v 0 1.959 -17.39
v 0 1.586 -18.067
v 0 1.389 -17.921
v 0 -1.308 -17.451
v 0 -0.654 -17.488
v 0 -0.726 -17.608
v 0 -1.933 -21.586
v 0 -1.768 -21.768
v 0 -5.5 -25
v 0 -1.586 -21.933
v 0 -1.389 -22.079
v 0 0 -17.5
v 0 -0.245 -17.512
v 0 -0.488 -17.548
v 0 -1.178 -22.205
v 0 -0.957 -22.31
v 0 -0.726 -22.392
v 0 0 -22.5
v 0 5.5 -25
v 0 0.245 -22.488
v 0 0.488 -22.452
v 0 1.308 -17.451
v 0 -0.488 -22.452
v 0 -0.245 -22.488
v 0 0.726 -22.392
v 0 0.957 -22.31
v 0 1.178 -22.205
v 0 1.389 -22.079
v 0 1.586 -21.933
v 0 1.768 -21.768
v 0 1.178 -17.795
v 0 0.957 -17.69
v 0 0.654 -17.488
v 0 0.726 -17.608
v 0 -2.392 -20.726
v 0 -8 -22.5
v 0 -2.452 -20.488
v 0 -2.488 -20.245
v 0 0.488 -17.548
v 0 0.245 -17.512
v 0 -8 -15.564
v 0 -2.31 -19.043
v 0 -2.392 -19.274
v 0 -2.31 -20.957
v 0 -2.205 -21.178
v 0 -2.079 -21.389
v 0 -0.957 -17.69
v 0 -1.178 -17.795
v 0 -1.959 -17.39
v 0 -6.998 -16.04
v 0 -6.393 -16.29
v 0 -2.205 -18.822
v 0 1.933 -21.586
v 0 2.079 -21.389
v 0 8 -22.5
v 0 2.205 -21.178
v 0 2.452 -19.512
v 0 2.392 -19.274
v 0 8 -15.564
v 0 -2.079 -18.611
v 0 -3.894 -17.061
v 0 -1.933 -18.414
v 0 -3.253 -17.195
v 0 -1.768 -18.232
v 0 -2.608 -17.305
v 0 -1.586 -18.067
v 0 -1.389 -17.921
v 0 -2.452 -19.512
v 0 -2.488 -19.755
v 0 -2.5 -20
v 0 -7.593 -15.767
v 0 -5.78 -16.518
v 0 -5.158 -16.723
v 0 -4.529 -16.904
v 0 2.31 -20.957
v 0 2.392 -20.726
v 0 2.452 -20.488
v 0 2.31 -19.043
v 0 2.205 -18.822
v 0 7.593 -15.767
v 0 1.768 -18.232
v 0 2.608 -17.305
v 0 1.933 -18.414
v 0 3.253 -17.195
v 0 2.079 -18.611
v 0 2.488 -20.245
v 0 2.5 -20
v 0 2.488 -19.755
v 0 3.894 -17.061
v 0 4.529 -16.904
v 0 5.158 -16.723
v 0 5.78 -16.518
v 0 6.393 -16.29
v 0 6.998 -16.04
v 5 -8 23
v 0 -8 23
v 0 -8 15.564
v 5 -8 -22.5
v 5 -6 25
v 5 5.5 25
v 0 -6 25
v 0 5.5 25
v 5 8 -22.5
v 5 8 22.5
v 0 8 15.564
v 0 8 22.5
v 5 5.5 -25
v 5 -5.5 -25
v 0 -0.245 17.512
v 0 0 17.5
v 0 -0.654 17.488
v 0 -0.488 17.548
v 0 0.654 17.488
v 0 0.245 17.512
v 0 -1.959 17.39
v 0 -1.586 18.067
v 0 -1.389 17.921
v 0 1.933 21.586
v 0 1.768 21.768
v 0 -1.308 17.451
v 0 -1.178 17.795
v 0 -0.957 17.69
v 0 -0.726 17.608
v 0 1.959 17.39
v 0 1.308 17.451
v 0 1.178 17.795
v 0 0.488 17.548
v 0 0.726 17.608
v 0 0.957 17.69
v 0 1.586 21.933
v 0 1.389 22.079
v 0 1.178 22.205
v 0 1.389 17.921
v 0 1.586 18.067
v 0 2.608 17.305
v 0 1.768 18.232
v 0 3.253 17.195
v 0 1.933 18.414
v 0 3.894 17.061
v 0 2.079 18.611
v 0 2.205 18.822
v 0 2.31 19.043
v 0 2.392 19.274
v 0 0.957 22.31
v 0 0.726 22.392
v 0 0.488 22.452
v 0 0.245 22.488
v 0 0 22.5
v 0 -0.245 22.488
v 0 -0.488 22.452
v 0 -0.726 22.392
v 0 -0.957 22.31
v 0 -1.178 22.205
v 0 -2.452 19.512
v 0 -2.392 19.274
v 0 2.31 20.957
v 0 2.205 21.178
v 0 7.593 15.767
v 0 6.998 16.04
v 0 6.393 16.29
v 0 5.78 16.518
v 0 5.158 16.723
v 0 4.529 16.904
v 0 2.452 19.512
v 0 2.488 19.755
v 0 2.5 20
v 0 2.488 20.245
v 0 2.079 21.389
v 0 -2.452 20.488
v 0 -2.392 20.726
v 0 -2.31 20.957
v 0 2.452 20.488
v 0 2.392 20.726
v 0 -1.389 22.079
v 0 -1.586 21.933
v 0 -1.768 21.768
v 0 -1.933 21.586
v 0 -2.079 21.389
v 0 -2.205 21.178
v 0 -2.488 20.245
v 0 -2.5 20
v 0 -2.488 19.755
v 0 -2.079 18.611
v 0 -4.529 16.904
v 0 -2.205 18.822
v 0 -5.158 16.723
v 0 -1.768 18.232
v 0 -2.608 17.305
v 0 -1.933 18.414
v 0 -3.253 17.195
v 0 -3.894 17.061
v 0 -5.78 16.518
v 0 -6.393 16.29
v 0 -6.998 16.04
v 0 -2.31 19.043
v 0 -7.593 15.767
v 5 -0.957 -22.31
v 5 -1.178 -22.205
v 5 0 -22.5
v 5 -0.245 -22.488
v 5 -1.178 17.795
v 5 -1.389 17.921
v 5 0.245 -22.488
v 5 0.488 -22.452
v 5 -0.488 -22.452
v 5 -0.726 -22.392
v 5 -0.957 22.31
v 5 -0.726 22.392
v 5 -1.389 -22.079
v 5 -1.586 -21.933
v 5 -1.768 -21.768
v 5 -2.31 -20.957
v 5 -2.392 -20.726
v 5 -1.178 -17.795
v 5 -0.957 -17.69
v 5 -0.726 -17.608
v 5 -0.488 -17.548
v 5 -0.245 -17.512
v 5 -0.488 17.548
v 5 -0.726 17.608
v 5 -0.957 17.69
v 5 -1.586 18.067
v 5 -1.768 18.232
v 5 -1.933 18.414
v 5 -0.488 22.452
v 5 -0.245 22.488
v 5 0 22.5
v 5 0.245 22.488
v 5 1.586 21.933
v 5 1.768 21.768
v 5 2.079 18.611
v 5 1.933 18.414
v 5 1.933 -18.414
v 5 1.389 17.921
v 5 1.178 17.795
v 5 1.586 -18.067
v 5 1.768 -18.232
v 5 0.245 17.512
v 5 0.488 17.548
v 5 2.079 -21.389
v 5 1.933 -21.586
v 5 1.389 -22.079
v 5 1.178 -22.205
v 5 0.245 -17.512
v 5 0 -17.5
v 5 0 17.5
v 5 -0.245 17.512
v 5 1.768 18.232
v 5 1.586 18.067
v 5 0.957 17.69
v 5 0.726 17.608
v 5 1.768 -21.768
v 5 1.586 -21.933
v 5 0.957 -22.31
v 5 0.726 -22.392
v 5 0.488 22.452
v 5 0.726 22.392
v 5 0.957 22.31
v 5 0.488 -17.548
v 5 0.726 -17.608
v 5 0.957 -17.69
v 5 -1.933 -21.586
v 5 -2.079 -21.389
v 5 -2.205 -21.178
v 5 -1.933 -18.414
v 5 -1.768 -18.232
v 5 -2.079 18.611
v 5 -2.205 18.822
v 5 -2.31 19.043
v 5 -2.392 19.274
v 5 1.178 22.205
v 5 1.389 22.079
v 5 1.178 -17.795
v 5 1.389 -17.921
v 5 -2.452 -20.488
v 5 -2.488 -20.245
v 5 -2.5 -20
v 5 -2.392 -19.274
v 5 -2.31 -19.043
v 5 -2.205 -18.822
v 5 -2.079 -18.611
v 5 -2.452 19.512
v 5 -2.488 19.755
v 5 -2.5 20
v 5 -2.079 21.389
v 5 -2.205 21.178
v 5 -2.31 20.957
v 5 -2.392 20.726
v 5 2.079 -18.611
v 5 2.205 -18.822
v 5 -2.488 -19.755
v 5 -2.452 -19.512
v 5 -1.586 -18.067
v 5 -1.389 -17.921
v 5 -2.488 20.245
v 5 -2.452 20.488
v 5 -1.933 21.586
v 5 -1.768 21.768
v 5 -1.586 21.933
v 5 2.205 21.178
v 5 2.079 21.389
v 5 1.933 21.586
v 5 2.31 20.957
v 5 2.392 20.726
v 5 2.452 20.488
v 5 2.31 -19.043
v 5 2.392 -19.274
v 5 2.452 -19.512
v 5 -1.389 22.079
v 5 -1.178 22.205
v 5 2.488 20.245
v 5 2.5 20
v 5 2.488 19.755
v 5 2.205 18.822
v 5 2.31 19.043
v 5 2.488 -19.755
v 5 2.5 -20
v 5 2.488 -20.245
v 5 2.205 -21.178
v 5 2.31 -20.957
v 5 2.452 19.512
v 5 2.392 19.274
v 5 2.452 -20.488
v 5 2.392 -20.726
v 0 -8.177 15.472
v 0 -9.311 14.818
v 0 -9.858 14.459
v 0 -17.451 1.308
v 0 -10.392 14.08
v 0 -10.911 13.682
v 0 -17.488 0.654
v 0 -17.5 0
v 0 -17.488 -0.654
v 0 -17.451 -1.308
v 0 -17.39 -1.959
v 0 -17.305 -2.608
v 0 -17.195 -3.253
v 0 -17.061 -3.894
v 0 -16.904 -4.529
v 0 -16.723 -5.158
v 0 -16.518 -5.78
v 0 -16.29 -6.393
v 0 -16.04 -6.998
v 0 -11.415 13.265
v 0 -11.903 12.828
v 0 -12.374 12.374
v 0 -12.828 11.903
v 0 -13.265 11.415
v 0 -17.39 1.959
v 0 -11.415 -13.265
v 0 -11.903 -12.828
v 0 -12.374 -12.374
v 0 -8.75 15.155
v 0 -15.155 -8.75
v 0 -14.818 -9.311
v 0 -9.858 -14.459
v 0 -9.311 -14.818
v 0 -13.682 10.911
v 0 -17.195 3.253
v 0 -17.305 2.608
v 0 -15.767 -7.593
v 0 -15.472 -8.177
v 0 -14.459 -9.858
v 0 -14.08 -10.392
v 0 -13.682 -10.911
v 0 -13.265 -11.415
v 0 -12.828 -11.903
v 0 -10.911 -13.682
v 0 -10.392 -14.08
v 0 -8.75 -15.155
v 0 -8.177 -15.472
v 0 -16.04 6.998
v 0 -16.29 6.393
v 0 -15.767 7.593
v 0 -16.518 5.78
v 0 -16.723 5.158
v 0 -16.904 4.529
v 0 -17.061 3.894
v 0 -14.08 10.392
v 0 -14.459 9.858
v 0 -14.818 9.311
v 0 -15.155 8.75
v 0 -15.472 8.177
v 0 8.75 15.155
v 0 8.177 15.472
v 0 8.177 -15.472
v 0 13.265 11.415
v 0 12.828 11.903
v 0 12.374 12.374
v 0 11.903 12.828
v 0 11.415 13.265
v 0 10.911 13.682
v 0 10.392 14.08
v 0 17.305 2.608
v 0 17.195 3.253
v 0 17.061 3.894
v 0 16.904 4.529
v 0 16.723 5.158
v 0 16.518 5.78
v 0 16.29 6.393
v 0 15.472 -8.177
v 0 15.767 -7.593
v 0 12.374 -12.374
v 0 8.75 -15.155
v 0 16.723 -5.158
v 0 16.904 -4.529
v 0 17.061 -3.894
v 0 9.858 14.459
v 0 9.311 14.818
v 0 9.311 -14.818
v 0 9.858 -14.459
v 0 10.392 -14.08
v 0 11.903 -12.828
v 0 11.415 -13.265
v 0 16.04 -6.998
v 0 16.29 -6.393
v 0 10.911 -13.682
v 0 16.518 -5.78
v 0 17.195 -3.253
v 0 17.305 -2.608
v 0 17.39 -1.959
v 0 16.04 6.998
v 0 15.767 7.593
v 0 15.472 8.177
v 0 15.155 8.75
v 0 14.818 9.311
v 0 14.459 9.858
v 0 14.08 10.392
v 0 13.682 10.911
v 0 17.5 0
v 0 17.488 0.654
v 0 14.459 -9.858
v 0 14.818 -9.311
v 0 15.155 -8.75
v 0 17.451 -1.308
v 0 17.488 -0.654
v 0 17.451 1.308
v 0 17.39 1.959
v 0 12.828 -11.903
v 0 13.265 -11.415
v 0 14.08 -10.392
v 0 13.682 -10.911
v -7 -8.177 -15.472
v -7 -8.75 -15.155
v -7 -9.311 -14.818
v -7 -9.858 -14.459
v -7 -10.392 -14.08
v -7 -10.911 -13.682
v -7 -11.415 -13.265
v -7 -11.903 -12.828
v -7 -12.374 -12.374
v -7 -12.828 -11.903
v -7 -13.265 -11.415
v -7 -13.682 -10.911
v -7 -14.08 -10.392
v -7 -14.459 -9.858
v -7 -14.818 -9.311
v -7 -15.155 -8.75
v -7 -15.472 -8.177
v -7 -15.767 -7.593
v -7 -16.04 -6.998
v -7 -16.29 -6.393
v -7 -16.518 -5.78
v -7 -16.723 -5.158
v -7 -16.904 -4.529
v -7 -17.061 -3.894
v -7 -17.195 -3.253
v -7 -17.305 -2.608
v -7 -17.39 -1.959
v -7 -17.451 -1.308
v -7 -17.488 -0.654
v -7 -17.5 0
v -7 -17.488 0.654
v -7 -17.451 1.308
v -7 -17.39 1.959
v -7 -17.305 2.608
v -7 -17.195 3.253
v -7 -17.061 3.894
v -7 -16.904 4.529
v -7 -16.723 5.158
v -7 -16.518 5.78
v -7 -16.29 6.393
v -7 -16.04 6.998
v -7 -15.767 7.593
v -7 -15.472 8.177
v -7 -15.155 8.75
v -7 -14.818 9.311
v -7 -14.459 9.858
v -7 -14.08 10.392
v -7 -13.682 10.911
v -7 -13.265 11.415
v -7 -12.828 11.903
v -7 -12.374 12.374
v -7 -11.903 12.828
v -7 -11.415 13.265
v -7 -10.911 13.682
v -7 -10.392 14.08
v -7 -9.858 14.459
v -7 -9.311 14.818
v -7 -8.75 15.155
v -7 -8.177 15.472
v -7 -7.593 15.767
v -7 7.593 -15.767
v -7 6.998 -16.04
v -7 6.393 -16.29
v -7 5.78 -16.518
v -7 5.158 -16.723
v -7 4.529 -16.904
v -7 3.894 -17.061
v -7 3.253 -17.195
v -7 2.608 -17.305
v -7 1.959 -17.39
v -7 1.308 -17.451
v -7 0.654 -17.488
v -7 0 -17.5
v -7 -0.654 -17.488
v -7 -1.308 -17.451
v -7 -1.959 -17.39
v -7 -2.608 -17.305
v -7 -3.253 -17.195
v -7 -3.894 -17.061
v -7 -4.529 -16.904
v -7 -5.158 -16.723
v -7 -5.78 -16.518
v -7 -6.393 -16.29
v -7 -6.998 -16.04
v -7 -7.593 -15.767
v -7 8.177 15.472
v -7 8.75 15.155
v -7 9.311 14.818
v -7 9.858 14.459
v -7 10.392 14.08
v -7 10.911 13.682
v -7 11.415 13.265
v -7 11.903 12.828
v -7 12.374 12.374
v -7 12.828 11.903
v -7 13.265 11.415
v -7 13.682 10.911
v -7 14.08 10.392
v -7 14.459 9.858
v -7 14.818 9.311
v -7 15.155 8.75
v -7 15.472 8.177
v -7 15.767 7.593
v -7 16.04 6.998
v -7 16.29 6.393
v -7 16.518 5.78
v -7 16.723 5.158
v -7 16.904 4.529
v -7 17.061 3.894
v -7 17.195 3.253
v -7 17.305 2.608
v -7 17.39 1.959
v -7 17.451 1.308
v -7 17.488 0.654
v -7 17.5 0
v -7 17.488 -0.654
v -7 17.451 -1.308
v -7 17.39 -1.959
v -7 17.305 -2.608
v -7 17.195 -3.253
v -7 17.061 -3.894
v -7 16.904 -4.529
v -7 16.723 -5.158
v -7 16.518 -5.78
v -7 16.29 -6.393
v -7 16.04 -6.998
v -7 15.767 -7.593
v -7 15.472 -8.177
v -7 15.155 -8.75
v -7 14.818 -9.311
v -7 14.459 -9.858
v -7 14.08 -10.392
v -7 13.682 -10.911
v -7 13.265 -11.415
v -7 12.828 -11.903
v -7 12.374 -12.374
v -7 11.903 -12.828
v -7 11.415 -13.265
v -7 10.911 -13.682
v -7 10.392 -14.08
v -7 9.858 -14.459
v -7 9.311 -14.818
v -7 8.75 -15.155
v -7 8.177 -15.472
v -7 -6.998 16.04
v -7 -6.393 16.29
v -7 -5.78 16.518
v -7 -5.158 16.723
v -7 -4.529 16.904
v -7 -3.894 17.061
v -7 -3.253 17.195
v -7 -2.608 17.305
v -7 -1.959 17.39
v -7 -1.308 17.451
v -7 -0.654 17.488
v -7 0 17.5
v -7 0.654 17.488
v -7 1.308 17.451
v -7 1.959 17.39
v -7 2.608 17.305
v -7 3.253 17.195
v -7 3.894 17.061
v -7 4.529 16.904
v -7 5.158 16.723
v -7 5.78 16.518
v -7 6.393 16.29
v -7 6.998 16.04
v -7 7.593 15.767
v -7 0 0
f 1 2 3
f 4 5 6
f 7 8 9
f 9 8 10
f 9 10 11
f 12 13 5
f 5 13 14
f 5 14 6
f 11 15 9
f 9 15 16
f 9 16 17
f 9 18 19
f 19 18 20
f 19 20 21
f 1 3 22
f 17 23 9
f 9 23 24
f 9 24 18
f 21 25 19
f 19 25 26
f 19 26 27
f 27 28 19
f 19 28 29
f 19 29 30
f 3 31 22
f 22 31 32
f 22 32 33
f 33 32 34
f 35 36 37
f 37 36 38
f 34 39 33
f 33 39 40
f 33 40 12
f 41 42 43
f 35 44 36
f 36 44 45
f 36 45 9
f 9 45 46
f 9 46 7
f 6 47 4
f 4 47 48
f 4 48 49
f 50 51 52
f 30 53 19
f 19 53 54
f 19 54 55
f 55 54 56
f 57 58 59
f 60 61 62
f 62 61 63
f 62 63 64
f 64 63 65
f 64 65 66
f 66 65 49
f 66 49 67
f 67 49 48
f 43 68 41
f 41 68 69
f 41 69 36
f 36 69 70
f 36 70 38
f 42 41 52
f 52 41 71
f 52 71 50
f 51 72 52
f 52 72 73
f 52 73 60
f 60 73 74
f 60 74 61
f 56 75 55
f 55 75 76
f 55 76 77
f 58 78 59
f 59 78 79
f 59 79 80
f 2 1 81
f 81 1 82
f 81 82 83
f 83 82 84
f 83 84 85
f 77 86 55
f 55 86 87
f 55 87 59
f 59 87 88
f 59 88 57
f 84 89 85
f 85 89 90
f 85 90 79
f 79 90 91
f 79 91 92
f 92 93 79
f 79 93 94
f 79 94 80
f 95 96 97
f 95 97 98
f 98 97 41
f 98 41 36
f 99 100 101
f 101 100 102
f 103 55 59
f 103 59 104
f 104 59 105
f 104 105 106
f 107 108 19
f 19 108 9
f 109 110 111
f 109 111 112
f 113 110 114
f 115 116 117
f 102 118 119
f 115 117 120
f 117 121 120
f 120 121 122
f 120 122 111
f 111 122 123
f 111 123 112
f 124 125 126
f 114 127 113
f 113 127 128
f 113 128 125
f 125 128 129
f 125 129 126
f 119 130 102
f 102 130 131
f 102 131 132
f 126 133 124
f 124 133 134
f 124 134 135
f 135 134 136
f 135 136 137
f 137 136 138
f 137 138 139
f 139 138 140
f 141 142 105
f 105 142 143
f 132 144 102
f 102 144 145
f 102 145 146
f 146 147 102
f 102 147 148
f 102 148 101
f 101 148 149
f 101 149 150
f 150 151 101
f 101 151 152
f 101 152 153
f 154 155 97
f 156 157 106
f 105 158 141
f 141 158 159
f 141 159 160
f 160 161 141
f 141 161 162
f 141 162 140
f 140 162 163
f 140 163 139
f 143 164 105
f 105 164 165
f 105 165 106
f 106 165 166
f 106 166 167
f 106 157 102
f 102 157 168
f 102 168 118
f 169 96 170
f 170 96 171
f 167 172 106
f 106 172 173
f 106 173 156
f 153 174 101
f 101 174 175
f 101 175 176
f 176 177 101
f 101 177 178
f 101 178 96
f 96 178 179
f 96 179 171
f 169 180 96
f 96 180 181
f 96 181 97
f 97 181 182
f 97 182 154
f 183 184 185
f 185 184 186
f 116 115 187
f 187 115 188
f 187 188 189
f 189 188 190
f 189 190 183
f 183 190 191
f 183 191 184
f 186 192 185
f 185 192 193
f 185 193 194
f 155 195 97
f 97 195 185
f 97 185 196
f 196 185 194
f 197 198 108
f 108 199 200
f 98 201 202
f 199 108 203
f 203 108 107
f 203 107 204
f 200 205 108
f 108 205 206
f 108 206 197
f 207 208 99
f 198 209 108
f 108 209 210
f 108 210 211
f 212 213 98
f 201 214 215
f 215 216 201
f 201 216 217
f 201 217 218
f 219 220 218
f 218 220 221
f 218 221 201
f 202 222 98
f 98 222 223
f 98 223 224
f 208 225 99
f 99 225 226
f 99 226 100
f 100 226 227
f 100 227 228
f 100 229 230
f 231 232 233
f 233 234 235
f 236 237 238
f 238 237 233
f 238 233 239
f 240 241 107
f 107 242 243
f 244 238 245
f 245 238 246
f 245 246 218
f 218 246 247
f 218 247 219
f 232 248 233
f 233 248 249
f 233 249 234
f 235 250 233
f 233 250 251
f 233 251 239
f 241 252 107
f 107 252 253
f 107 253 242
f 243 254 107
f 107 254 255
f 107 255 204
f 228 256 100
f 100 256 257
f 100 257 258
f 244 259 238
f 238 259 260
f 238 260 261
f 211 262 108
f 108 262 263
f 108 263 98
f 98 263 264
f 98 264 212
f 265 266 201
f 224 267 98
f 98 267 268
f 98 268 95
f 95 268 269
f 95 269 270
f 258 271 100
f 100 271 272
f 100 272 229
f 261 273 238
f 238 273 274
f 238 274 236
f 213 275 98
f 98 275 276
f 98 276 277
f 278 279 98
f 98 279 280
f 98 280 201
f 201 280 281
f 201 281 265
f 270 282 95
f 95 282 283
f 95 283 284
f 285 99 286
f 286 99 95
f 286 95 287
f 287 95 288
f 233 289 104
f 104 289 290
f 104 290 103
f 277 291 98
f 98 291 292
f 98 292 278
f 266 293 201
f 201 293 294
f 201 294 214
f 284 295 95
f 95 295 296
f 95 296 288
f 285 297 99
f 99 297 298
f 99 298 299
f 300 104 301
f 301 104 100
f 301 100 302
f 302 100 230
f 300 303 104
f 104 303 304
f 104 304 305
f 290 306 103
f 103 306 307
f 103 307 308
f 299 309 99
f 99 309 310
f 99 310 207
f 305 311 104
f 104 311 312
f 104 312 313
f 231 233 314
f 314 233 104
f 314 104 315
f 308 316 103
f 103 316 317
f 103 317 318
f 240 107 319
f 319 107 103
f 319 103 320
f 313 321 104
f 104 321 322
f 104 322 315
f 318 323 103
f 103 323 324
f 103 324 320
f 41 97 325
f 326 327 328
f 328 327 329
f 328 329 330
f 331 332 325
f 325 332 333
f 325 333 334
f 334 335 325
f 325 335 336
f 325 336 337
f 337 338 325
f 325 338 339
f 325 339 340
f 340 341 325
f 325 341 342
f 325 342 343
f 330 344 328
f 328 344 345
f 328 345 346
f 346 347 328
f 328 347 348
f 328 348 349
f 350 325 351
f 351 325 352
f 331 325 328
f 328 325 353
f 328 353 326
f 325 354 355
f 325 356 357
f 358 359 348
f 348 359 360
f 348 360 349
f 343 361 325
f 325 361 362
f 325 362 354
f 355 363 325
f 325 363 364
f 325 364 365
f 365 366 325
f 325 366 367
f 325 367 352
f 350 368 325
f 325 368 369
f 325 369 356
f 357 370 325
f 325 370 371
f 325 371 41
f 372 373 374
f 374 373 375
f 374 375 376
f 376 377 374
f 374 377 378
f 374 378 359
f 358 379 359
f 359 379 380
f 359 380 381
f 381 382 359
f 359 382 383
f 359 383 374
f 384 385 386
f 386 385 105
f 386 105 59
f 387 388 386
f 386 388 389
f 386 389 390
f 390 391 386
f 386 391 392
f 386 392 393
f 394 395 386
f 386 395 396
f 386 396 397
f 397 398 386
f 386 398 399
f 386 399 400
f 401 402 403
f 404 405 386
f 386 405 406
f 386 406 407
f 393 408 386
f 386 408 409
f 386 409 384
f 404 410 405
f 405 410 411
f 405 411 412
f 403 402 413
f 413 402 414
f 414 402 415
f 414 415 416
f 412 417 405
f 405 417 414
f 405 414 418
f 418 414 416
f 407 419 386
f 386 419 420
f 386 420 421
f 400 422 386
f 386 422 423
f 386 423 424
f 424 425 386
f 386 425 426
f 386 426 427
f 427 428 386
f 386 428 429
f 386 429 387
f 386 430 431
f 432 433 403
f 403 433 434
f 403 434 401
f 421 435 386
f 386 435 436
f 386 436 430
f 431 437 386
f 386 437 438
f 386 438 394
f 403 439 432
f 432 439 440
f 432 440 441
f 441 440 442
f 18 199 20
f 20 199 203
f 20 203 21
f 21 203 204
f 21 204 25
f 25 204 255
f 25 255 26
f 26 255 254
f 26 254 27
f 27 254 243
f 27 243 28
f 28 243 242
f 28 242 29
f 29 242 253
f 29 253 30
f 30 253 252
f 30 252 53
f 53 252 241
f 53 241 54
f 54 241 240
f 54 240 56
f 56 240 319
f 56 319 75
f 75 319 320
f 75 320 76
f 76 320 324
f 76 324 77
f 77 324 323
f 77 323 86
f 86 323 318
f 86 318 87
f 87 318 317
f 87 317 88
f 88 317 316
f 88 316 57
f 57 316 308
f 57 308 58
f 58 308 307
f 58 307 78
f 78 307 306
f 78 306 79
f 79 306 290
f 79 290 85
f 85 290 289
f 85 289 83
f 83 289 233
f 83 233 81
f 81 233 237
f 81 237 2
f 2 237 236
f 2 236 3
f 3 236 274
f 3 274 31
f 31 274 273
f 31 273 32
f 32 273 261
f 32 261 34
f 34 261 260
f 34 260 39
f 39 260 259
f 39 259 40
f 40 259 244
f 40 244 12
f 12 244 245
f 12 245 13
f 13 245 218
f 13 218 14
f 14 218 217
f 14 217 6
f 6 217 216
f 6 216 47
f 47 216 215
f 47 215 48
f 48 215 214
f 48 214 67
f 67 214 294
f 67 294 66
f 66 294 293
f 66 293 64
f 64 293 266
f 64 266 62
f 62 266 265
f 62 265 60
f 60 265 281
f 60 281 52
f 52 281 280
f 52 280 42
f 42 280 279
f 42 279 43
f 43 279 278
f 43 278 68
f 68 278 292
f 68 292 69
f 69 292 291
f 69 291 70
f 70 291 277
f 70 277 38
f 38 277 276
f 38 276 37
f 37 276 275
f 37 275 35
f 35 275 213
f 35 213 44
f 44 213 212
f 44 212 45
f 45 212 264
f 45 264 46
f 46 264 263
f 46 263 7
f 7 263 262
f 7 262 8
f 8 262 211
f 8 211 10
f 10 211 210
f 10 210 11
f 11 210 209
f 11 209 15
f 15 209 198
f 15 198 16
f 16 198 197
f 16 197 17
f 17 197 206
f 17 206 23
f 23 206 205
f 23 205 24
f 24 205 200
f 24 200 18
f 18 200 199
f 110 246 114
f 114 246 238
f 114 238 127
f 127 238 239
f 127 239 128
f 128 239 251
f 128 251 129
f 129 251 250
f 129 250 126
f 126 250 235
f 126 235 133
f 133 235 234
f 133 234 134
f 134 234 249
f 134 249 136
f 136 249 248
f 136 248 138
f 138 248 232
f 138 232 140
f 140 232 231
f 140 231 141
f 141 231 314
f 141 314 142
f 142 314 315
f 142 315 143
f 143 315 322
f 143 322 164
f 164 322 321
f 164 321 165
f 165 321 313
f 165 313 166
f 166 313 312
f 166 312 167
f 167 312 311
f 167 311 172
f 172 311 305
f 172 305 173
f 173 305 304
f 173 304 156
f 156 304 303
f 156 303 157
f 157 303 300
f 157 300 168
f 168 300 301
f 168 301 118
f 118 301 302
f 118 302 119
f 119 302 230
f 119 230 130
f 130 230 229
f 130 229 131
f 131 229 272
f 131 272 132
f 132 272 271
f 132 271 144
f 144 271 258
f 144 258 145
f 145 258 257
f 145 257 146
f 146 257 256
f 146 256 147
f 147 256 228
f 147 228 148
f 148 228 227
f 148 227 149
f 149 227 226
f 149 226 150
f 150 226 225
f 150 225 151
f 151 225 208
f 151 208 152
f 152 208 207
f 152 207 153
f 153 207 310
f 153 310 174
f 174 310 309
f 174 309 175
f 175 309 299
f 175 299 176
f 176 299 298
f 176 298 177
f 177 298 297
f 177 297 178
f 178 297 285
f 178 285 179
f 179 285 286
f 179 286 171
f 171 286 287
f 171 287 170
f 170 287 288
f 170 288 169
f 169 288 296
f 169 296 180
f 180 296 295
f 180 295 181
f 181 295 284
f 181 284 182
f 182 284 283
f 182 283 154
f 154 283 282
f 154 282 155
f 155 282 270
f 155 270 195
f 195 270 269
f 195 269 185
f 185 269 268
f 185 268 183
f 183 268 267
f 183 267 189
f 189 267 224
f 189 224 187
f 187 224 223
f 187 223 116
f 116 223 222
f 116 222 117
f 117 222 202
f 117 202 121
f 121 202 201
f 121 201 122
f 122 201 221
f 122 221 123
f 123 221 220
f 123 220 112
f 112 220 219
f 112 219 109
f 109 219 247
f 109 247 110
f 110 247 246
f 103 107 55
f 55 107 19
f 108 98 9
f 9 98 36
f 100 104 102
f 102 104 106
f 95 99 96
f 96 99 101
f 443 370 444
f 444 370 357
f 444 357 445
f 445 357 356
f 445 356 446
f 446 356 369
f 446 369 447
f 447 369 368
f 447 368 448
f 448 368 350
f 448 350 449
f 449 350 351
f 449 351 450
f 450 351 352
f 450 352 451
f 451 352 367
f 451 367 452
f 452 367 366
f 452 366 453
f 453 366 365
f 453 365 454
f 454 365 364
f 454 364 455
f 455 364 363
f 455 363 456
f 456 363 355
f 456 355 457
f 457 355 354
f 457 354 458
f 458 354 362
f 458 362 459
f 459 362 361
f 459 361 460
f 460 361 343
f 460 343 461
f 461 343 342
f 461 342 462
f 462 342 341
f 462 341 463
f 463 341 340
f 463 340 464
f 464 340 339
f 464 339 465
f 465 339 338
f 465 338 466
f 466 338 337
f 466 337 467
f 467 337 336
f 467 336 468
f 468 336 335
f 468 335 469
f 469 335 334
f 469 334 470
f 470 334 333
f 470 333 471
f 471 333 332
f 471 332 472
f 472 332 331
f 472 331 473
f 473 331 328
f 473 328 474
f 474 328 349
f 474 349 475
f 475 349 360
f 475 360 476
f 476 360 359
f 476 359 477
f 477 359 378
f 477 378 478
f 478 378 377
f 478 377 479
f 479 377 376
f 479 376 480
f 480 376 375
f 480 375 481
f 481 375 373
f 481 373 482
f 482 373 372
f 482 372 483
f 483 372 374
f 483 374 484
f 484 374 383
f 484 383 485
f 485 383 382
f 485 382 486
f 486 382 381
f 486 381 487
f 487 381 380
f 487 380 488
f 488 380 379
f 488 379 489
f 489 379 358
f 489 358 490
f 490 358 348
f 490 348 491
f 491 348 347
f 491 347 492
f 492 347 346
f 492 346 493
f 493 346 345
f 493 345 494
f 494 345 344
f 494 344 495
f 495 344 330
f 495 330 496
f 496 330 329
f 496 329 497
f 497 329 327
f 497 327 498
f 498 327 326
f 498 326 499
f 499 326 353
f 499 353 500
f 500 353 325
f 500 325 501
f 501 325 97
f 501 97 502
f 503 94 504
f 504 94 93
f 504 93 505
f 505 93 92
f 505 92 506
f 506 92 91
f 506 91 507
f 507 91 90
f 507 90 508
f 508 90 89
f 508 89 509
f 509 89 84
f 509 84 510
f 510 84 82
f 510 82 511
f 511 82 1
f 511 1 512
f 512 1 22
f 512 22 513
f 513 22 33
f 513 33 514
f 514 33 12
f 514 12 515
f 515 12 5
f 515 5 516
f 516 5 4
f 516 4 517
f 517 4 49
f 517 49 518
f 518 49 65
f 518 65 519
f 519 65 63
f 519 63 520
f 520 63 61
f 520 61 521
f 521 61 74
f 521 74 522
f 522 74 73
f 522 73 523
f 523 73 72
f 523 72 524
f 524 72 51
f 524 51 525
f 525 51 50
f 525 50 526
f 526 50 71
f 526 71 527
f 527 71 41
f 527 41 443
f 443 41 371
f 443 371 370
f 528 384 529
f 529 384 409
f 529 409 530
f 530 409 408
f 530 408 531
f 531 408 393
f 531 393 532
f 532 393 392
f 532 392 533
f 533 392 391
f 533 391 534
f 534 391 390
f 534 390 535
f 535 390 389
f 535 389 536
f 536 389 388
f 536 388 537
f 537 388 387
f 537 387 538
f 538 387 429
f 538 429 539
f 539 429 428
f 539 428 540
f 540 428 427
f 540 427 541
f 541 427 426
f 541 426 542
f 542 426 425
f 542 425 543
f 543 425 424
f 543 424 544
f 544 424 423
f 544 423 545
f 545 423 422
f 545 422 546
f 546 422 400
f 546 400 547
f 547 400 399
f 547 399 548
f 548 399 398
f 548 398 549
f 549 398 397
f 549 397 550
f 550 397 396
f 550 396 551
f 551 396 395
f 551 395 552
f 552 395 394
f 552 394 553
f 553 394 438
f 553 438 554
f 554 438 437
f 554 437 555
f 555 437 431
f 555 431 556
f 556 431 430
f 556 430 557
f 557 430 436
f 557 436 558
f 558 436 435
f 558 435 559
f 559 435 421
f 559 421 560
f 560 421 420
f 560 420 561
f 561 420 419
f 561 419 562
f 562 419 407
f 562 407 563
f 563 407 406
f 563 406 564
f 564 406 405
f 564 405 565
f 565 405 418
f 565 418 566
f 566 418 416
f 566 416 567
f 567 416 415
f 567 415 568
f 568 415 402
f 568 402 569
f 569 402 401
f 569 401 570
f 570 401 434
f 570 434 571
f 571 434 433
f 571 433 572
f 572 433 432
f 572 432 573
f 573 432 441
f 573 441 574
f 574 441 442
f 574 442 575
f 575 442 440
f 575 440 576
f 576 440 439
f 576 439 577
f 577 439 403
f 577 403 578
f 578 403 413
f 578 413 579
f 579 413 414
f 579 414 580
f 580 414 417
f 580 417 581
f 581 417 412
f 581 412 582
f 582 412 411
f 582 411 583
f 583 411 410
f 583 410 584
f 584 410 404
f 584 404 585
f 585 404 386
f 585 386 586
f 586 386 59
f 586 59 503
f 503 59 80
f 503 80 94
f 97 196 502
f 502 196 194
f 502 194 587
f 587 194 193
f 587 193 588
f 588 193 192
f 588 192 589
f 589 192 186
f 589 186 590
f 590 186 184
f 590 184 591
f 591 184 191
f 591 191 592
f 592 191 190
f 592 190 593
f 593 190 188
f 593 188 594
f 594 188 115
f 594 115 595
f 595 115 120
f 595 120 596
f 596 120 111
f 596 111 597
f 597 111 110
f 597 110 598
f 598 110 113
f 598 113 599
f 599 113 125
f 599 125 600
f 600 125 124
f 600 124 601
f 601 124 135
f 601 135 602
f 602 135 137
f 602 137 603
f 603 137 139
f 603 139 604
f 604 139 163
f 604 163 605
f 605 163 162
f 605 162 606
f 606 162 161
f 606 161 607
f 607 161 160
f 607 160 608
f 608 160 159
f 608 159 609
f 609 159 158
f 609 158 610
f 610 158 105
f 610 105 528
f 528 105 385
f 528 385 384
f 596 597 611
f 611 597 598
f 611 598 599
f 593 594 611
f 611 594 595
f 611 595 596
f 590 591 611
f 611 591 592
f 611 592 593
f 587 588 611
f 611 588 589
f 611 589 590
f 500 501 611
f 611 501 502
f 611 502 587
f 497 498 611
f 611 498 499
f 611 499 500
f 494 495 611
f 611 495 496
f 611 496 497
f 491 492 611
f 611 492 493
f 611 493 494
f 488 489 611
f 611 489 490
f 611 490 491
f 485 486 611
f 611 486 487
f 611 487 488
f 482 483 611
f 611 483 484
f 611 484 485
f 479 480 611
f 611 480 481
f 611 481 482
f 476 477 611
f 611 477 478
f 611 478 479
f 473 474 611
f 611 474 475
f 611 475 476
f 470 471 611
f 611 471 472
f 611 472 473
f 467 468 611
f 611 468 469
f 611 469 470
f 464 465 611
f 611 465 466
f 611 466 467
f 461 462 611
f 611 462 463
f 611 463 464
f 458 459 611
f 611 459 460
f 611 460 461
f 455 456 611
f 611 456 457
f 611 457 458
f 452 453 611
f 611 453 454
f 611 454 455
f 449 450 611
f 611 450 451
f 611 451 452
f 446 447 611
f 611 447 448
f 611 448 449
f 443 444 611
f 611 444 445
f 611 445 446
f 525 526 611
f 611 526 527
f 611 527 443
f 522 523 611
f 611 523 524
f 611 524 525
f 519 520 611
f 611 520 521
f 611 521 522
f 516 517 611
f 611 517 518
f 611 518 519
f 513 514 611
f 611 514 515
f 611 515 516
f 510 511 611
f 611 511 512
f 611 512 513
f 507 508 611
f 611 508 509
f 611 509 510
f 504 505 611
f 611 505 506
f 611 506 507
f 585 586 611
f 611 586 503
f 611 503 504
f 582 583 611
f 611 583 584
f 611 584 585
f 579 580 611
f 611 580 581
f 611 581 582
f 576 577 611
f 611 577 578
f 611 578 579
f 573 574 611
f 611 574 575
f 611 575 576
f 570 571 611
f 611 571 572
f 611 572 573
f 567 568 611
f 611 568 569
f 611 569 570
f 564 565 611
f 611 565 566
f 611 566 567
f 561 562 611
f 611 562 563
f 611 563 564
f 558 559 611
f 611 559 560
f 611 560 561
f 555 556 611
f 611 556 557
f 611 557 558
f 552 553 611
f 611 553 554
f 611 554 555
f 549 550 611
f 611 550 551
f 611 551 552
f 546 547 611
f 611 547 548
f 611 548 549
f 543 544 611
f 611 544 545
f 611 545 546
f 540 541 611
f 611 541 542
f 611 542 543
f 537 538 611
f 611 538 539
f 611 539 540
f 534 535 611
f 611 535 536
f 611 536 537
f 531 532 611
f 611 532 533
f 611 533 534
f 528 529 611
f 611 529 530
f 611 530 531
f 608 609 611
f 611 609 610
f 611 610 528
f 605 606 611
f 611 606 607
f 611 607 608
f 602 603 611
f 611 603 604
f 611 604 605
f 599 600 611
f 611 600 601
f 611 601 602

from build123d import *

# Parameters (mm, degrees)
SKETCH1_W                    = 50
SKETCH1_H                    = 16
BOSS_EXTRUDE1_DEPTH          = 5
SKETCH2_W                    = 7
SKETCH2_H                    = 14
F_5_0_5_DIAMETER_HOLE1_D     = 5
F_5_0_5_DIAMETER_HOLE1_DEPTH = 12
CHAMFER1_SIZE                = 2.5
CHAMFER2_SIZE                = 2
SKETCH5_R                    = 17.5
BOSS_EXTRUDE2_DEPTH          = 7


with BuildPart() as part:
    # Sketch1 → Boss-Extrude1 (new body)
    with BuildSketch(Plane(origin=(5, 0, 0), x_dir=(0, 0, -1), z_dir=(1, 0, 0))):
        Rectangle(SKETCH1_W, SKETCH1_H)
    extrude(amount=-BOSS_EXTRUDE1_DEPTH)

    # Sketch2 → Revolve1 (revolve)
    with BuildSketch(Plane(origin=(0, 0, 0), x_dir=(-1, 0, 0), z_dir=(0, 0, -1)), mode=Mode.PRIVATE) as revolve1_sk:
        with Locations((3.5, 7)):
            Rectangle(SKETCH2_W, SKETCH2_H)
    revolve(revolve1_sk.sketch.rotate(Axis((0, 0, 0), (-1, 0, 0)), 270), axis=Axis((0, 0, 0), (-1, 0, 0)))

    # Ø5.0 (5) Diameter Hole1
    with Locations(Plane(origin=(5, 0, 0), x_dir=(0, 0, -1), z_dir=(1, 0, 0))):
        with Locations((-20, 0), (20, 0)):
            Hole(F_5_0_5_DIAMETER_HOLE1_D / 2, depth=F_5_0_5_DIAMETER_HOLE1_DEPTH)

    # Chamfer1
    chamfer1_edges = [part.edges().sort_by_distance(p)[0] for p in [
        (2.5, 8, 25),
        (2.5, 8, -25),
        (2.5, -8, -25),
    ]]
    chamfer(chamfer1_edges, length=CHAMFER1_SIZE)

    # Chamfer2
    chamfer2_edges = [part.edges().sort_by_distance(p)[0] for p in [
        (2.5, -8, 25),
    ]]
    chamfer(chamfer2_edges, length=CHAMFER2_SIZE)

    # Sketch5 → Boss-Extrude2 (add)
    with BuildSketch(Plane.ZY.offset(7)):
        Circle(SKETCH5_R)
    extrude(amount=-BOSS_EXTRUDE2_DEPTH)


solid = part.part
